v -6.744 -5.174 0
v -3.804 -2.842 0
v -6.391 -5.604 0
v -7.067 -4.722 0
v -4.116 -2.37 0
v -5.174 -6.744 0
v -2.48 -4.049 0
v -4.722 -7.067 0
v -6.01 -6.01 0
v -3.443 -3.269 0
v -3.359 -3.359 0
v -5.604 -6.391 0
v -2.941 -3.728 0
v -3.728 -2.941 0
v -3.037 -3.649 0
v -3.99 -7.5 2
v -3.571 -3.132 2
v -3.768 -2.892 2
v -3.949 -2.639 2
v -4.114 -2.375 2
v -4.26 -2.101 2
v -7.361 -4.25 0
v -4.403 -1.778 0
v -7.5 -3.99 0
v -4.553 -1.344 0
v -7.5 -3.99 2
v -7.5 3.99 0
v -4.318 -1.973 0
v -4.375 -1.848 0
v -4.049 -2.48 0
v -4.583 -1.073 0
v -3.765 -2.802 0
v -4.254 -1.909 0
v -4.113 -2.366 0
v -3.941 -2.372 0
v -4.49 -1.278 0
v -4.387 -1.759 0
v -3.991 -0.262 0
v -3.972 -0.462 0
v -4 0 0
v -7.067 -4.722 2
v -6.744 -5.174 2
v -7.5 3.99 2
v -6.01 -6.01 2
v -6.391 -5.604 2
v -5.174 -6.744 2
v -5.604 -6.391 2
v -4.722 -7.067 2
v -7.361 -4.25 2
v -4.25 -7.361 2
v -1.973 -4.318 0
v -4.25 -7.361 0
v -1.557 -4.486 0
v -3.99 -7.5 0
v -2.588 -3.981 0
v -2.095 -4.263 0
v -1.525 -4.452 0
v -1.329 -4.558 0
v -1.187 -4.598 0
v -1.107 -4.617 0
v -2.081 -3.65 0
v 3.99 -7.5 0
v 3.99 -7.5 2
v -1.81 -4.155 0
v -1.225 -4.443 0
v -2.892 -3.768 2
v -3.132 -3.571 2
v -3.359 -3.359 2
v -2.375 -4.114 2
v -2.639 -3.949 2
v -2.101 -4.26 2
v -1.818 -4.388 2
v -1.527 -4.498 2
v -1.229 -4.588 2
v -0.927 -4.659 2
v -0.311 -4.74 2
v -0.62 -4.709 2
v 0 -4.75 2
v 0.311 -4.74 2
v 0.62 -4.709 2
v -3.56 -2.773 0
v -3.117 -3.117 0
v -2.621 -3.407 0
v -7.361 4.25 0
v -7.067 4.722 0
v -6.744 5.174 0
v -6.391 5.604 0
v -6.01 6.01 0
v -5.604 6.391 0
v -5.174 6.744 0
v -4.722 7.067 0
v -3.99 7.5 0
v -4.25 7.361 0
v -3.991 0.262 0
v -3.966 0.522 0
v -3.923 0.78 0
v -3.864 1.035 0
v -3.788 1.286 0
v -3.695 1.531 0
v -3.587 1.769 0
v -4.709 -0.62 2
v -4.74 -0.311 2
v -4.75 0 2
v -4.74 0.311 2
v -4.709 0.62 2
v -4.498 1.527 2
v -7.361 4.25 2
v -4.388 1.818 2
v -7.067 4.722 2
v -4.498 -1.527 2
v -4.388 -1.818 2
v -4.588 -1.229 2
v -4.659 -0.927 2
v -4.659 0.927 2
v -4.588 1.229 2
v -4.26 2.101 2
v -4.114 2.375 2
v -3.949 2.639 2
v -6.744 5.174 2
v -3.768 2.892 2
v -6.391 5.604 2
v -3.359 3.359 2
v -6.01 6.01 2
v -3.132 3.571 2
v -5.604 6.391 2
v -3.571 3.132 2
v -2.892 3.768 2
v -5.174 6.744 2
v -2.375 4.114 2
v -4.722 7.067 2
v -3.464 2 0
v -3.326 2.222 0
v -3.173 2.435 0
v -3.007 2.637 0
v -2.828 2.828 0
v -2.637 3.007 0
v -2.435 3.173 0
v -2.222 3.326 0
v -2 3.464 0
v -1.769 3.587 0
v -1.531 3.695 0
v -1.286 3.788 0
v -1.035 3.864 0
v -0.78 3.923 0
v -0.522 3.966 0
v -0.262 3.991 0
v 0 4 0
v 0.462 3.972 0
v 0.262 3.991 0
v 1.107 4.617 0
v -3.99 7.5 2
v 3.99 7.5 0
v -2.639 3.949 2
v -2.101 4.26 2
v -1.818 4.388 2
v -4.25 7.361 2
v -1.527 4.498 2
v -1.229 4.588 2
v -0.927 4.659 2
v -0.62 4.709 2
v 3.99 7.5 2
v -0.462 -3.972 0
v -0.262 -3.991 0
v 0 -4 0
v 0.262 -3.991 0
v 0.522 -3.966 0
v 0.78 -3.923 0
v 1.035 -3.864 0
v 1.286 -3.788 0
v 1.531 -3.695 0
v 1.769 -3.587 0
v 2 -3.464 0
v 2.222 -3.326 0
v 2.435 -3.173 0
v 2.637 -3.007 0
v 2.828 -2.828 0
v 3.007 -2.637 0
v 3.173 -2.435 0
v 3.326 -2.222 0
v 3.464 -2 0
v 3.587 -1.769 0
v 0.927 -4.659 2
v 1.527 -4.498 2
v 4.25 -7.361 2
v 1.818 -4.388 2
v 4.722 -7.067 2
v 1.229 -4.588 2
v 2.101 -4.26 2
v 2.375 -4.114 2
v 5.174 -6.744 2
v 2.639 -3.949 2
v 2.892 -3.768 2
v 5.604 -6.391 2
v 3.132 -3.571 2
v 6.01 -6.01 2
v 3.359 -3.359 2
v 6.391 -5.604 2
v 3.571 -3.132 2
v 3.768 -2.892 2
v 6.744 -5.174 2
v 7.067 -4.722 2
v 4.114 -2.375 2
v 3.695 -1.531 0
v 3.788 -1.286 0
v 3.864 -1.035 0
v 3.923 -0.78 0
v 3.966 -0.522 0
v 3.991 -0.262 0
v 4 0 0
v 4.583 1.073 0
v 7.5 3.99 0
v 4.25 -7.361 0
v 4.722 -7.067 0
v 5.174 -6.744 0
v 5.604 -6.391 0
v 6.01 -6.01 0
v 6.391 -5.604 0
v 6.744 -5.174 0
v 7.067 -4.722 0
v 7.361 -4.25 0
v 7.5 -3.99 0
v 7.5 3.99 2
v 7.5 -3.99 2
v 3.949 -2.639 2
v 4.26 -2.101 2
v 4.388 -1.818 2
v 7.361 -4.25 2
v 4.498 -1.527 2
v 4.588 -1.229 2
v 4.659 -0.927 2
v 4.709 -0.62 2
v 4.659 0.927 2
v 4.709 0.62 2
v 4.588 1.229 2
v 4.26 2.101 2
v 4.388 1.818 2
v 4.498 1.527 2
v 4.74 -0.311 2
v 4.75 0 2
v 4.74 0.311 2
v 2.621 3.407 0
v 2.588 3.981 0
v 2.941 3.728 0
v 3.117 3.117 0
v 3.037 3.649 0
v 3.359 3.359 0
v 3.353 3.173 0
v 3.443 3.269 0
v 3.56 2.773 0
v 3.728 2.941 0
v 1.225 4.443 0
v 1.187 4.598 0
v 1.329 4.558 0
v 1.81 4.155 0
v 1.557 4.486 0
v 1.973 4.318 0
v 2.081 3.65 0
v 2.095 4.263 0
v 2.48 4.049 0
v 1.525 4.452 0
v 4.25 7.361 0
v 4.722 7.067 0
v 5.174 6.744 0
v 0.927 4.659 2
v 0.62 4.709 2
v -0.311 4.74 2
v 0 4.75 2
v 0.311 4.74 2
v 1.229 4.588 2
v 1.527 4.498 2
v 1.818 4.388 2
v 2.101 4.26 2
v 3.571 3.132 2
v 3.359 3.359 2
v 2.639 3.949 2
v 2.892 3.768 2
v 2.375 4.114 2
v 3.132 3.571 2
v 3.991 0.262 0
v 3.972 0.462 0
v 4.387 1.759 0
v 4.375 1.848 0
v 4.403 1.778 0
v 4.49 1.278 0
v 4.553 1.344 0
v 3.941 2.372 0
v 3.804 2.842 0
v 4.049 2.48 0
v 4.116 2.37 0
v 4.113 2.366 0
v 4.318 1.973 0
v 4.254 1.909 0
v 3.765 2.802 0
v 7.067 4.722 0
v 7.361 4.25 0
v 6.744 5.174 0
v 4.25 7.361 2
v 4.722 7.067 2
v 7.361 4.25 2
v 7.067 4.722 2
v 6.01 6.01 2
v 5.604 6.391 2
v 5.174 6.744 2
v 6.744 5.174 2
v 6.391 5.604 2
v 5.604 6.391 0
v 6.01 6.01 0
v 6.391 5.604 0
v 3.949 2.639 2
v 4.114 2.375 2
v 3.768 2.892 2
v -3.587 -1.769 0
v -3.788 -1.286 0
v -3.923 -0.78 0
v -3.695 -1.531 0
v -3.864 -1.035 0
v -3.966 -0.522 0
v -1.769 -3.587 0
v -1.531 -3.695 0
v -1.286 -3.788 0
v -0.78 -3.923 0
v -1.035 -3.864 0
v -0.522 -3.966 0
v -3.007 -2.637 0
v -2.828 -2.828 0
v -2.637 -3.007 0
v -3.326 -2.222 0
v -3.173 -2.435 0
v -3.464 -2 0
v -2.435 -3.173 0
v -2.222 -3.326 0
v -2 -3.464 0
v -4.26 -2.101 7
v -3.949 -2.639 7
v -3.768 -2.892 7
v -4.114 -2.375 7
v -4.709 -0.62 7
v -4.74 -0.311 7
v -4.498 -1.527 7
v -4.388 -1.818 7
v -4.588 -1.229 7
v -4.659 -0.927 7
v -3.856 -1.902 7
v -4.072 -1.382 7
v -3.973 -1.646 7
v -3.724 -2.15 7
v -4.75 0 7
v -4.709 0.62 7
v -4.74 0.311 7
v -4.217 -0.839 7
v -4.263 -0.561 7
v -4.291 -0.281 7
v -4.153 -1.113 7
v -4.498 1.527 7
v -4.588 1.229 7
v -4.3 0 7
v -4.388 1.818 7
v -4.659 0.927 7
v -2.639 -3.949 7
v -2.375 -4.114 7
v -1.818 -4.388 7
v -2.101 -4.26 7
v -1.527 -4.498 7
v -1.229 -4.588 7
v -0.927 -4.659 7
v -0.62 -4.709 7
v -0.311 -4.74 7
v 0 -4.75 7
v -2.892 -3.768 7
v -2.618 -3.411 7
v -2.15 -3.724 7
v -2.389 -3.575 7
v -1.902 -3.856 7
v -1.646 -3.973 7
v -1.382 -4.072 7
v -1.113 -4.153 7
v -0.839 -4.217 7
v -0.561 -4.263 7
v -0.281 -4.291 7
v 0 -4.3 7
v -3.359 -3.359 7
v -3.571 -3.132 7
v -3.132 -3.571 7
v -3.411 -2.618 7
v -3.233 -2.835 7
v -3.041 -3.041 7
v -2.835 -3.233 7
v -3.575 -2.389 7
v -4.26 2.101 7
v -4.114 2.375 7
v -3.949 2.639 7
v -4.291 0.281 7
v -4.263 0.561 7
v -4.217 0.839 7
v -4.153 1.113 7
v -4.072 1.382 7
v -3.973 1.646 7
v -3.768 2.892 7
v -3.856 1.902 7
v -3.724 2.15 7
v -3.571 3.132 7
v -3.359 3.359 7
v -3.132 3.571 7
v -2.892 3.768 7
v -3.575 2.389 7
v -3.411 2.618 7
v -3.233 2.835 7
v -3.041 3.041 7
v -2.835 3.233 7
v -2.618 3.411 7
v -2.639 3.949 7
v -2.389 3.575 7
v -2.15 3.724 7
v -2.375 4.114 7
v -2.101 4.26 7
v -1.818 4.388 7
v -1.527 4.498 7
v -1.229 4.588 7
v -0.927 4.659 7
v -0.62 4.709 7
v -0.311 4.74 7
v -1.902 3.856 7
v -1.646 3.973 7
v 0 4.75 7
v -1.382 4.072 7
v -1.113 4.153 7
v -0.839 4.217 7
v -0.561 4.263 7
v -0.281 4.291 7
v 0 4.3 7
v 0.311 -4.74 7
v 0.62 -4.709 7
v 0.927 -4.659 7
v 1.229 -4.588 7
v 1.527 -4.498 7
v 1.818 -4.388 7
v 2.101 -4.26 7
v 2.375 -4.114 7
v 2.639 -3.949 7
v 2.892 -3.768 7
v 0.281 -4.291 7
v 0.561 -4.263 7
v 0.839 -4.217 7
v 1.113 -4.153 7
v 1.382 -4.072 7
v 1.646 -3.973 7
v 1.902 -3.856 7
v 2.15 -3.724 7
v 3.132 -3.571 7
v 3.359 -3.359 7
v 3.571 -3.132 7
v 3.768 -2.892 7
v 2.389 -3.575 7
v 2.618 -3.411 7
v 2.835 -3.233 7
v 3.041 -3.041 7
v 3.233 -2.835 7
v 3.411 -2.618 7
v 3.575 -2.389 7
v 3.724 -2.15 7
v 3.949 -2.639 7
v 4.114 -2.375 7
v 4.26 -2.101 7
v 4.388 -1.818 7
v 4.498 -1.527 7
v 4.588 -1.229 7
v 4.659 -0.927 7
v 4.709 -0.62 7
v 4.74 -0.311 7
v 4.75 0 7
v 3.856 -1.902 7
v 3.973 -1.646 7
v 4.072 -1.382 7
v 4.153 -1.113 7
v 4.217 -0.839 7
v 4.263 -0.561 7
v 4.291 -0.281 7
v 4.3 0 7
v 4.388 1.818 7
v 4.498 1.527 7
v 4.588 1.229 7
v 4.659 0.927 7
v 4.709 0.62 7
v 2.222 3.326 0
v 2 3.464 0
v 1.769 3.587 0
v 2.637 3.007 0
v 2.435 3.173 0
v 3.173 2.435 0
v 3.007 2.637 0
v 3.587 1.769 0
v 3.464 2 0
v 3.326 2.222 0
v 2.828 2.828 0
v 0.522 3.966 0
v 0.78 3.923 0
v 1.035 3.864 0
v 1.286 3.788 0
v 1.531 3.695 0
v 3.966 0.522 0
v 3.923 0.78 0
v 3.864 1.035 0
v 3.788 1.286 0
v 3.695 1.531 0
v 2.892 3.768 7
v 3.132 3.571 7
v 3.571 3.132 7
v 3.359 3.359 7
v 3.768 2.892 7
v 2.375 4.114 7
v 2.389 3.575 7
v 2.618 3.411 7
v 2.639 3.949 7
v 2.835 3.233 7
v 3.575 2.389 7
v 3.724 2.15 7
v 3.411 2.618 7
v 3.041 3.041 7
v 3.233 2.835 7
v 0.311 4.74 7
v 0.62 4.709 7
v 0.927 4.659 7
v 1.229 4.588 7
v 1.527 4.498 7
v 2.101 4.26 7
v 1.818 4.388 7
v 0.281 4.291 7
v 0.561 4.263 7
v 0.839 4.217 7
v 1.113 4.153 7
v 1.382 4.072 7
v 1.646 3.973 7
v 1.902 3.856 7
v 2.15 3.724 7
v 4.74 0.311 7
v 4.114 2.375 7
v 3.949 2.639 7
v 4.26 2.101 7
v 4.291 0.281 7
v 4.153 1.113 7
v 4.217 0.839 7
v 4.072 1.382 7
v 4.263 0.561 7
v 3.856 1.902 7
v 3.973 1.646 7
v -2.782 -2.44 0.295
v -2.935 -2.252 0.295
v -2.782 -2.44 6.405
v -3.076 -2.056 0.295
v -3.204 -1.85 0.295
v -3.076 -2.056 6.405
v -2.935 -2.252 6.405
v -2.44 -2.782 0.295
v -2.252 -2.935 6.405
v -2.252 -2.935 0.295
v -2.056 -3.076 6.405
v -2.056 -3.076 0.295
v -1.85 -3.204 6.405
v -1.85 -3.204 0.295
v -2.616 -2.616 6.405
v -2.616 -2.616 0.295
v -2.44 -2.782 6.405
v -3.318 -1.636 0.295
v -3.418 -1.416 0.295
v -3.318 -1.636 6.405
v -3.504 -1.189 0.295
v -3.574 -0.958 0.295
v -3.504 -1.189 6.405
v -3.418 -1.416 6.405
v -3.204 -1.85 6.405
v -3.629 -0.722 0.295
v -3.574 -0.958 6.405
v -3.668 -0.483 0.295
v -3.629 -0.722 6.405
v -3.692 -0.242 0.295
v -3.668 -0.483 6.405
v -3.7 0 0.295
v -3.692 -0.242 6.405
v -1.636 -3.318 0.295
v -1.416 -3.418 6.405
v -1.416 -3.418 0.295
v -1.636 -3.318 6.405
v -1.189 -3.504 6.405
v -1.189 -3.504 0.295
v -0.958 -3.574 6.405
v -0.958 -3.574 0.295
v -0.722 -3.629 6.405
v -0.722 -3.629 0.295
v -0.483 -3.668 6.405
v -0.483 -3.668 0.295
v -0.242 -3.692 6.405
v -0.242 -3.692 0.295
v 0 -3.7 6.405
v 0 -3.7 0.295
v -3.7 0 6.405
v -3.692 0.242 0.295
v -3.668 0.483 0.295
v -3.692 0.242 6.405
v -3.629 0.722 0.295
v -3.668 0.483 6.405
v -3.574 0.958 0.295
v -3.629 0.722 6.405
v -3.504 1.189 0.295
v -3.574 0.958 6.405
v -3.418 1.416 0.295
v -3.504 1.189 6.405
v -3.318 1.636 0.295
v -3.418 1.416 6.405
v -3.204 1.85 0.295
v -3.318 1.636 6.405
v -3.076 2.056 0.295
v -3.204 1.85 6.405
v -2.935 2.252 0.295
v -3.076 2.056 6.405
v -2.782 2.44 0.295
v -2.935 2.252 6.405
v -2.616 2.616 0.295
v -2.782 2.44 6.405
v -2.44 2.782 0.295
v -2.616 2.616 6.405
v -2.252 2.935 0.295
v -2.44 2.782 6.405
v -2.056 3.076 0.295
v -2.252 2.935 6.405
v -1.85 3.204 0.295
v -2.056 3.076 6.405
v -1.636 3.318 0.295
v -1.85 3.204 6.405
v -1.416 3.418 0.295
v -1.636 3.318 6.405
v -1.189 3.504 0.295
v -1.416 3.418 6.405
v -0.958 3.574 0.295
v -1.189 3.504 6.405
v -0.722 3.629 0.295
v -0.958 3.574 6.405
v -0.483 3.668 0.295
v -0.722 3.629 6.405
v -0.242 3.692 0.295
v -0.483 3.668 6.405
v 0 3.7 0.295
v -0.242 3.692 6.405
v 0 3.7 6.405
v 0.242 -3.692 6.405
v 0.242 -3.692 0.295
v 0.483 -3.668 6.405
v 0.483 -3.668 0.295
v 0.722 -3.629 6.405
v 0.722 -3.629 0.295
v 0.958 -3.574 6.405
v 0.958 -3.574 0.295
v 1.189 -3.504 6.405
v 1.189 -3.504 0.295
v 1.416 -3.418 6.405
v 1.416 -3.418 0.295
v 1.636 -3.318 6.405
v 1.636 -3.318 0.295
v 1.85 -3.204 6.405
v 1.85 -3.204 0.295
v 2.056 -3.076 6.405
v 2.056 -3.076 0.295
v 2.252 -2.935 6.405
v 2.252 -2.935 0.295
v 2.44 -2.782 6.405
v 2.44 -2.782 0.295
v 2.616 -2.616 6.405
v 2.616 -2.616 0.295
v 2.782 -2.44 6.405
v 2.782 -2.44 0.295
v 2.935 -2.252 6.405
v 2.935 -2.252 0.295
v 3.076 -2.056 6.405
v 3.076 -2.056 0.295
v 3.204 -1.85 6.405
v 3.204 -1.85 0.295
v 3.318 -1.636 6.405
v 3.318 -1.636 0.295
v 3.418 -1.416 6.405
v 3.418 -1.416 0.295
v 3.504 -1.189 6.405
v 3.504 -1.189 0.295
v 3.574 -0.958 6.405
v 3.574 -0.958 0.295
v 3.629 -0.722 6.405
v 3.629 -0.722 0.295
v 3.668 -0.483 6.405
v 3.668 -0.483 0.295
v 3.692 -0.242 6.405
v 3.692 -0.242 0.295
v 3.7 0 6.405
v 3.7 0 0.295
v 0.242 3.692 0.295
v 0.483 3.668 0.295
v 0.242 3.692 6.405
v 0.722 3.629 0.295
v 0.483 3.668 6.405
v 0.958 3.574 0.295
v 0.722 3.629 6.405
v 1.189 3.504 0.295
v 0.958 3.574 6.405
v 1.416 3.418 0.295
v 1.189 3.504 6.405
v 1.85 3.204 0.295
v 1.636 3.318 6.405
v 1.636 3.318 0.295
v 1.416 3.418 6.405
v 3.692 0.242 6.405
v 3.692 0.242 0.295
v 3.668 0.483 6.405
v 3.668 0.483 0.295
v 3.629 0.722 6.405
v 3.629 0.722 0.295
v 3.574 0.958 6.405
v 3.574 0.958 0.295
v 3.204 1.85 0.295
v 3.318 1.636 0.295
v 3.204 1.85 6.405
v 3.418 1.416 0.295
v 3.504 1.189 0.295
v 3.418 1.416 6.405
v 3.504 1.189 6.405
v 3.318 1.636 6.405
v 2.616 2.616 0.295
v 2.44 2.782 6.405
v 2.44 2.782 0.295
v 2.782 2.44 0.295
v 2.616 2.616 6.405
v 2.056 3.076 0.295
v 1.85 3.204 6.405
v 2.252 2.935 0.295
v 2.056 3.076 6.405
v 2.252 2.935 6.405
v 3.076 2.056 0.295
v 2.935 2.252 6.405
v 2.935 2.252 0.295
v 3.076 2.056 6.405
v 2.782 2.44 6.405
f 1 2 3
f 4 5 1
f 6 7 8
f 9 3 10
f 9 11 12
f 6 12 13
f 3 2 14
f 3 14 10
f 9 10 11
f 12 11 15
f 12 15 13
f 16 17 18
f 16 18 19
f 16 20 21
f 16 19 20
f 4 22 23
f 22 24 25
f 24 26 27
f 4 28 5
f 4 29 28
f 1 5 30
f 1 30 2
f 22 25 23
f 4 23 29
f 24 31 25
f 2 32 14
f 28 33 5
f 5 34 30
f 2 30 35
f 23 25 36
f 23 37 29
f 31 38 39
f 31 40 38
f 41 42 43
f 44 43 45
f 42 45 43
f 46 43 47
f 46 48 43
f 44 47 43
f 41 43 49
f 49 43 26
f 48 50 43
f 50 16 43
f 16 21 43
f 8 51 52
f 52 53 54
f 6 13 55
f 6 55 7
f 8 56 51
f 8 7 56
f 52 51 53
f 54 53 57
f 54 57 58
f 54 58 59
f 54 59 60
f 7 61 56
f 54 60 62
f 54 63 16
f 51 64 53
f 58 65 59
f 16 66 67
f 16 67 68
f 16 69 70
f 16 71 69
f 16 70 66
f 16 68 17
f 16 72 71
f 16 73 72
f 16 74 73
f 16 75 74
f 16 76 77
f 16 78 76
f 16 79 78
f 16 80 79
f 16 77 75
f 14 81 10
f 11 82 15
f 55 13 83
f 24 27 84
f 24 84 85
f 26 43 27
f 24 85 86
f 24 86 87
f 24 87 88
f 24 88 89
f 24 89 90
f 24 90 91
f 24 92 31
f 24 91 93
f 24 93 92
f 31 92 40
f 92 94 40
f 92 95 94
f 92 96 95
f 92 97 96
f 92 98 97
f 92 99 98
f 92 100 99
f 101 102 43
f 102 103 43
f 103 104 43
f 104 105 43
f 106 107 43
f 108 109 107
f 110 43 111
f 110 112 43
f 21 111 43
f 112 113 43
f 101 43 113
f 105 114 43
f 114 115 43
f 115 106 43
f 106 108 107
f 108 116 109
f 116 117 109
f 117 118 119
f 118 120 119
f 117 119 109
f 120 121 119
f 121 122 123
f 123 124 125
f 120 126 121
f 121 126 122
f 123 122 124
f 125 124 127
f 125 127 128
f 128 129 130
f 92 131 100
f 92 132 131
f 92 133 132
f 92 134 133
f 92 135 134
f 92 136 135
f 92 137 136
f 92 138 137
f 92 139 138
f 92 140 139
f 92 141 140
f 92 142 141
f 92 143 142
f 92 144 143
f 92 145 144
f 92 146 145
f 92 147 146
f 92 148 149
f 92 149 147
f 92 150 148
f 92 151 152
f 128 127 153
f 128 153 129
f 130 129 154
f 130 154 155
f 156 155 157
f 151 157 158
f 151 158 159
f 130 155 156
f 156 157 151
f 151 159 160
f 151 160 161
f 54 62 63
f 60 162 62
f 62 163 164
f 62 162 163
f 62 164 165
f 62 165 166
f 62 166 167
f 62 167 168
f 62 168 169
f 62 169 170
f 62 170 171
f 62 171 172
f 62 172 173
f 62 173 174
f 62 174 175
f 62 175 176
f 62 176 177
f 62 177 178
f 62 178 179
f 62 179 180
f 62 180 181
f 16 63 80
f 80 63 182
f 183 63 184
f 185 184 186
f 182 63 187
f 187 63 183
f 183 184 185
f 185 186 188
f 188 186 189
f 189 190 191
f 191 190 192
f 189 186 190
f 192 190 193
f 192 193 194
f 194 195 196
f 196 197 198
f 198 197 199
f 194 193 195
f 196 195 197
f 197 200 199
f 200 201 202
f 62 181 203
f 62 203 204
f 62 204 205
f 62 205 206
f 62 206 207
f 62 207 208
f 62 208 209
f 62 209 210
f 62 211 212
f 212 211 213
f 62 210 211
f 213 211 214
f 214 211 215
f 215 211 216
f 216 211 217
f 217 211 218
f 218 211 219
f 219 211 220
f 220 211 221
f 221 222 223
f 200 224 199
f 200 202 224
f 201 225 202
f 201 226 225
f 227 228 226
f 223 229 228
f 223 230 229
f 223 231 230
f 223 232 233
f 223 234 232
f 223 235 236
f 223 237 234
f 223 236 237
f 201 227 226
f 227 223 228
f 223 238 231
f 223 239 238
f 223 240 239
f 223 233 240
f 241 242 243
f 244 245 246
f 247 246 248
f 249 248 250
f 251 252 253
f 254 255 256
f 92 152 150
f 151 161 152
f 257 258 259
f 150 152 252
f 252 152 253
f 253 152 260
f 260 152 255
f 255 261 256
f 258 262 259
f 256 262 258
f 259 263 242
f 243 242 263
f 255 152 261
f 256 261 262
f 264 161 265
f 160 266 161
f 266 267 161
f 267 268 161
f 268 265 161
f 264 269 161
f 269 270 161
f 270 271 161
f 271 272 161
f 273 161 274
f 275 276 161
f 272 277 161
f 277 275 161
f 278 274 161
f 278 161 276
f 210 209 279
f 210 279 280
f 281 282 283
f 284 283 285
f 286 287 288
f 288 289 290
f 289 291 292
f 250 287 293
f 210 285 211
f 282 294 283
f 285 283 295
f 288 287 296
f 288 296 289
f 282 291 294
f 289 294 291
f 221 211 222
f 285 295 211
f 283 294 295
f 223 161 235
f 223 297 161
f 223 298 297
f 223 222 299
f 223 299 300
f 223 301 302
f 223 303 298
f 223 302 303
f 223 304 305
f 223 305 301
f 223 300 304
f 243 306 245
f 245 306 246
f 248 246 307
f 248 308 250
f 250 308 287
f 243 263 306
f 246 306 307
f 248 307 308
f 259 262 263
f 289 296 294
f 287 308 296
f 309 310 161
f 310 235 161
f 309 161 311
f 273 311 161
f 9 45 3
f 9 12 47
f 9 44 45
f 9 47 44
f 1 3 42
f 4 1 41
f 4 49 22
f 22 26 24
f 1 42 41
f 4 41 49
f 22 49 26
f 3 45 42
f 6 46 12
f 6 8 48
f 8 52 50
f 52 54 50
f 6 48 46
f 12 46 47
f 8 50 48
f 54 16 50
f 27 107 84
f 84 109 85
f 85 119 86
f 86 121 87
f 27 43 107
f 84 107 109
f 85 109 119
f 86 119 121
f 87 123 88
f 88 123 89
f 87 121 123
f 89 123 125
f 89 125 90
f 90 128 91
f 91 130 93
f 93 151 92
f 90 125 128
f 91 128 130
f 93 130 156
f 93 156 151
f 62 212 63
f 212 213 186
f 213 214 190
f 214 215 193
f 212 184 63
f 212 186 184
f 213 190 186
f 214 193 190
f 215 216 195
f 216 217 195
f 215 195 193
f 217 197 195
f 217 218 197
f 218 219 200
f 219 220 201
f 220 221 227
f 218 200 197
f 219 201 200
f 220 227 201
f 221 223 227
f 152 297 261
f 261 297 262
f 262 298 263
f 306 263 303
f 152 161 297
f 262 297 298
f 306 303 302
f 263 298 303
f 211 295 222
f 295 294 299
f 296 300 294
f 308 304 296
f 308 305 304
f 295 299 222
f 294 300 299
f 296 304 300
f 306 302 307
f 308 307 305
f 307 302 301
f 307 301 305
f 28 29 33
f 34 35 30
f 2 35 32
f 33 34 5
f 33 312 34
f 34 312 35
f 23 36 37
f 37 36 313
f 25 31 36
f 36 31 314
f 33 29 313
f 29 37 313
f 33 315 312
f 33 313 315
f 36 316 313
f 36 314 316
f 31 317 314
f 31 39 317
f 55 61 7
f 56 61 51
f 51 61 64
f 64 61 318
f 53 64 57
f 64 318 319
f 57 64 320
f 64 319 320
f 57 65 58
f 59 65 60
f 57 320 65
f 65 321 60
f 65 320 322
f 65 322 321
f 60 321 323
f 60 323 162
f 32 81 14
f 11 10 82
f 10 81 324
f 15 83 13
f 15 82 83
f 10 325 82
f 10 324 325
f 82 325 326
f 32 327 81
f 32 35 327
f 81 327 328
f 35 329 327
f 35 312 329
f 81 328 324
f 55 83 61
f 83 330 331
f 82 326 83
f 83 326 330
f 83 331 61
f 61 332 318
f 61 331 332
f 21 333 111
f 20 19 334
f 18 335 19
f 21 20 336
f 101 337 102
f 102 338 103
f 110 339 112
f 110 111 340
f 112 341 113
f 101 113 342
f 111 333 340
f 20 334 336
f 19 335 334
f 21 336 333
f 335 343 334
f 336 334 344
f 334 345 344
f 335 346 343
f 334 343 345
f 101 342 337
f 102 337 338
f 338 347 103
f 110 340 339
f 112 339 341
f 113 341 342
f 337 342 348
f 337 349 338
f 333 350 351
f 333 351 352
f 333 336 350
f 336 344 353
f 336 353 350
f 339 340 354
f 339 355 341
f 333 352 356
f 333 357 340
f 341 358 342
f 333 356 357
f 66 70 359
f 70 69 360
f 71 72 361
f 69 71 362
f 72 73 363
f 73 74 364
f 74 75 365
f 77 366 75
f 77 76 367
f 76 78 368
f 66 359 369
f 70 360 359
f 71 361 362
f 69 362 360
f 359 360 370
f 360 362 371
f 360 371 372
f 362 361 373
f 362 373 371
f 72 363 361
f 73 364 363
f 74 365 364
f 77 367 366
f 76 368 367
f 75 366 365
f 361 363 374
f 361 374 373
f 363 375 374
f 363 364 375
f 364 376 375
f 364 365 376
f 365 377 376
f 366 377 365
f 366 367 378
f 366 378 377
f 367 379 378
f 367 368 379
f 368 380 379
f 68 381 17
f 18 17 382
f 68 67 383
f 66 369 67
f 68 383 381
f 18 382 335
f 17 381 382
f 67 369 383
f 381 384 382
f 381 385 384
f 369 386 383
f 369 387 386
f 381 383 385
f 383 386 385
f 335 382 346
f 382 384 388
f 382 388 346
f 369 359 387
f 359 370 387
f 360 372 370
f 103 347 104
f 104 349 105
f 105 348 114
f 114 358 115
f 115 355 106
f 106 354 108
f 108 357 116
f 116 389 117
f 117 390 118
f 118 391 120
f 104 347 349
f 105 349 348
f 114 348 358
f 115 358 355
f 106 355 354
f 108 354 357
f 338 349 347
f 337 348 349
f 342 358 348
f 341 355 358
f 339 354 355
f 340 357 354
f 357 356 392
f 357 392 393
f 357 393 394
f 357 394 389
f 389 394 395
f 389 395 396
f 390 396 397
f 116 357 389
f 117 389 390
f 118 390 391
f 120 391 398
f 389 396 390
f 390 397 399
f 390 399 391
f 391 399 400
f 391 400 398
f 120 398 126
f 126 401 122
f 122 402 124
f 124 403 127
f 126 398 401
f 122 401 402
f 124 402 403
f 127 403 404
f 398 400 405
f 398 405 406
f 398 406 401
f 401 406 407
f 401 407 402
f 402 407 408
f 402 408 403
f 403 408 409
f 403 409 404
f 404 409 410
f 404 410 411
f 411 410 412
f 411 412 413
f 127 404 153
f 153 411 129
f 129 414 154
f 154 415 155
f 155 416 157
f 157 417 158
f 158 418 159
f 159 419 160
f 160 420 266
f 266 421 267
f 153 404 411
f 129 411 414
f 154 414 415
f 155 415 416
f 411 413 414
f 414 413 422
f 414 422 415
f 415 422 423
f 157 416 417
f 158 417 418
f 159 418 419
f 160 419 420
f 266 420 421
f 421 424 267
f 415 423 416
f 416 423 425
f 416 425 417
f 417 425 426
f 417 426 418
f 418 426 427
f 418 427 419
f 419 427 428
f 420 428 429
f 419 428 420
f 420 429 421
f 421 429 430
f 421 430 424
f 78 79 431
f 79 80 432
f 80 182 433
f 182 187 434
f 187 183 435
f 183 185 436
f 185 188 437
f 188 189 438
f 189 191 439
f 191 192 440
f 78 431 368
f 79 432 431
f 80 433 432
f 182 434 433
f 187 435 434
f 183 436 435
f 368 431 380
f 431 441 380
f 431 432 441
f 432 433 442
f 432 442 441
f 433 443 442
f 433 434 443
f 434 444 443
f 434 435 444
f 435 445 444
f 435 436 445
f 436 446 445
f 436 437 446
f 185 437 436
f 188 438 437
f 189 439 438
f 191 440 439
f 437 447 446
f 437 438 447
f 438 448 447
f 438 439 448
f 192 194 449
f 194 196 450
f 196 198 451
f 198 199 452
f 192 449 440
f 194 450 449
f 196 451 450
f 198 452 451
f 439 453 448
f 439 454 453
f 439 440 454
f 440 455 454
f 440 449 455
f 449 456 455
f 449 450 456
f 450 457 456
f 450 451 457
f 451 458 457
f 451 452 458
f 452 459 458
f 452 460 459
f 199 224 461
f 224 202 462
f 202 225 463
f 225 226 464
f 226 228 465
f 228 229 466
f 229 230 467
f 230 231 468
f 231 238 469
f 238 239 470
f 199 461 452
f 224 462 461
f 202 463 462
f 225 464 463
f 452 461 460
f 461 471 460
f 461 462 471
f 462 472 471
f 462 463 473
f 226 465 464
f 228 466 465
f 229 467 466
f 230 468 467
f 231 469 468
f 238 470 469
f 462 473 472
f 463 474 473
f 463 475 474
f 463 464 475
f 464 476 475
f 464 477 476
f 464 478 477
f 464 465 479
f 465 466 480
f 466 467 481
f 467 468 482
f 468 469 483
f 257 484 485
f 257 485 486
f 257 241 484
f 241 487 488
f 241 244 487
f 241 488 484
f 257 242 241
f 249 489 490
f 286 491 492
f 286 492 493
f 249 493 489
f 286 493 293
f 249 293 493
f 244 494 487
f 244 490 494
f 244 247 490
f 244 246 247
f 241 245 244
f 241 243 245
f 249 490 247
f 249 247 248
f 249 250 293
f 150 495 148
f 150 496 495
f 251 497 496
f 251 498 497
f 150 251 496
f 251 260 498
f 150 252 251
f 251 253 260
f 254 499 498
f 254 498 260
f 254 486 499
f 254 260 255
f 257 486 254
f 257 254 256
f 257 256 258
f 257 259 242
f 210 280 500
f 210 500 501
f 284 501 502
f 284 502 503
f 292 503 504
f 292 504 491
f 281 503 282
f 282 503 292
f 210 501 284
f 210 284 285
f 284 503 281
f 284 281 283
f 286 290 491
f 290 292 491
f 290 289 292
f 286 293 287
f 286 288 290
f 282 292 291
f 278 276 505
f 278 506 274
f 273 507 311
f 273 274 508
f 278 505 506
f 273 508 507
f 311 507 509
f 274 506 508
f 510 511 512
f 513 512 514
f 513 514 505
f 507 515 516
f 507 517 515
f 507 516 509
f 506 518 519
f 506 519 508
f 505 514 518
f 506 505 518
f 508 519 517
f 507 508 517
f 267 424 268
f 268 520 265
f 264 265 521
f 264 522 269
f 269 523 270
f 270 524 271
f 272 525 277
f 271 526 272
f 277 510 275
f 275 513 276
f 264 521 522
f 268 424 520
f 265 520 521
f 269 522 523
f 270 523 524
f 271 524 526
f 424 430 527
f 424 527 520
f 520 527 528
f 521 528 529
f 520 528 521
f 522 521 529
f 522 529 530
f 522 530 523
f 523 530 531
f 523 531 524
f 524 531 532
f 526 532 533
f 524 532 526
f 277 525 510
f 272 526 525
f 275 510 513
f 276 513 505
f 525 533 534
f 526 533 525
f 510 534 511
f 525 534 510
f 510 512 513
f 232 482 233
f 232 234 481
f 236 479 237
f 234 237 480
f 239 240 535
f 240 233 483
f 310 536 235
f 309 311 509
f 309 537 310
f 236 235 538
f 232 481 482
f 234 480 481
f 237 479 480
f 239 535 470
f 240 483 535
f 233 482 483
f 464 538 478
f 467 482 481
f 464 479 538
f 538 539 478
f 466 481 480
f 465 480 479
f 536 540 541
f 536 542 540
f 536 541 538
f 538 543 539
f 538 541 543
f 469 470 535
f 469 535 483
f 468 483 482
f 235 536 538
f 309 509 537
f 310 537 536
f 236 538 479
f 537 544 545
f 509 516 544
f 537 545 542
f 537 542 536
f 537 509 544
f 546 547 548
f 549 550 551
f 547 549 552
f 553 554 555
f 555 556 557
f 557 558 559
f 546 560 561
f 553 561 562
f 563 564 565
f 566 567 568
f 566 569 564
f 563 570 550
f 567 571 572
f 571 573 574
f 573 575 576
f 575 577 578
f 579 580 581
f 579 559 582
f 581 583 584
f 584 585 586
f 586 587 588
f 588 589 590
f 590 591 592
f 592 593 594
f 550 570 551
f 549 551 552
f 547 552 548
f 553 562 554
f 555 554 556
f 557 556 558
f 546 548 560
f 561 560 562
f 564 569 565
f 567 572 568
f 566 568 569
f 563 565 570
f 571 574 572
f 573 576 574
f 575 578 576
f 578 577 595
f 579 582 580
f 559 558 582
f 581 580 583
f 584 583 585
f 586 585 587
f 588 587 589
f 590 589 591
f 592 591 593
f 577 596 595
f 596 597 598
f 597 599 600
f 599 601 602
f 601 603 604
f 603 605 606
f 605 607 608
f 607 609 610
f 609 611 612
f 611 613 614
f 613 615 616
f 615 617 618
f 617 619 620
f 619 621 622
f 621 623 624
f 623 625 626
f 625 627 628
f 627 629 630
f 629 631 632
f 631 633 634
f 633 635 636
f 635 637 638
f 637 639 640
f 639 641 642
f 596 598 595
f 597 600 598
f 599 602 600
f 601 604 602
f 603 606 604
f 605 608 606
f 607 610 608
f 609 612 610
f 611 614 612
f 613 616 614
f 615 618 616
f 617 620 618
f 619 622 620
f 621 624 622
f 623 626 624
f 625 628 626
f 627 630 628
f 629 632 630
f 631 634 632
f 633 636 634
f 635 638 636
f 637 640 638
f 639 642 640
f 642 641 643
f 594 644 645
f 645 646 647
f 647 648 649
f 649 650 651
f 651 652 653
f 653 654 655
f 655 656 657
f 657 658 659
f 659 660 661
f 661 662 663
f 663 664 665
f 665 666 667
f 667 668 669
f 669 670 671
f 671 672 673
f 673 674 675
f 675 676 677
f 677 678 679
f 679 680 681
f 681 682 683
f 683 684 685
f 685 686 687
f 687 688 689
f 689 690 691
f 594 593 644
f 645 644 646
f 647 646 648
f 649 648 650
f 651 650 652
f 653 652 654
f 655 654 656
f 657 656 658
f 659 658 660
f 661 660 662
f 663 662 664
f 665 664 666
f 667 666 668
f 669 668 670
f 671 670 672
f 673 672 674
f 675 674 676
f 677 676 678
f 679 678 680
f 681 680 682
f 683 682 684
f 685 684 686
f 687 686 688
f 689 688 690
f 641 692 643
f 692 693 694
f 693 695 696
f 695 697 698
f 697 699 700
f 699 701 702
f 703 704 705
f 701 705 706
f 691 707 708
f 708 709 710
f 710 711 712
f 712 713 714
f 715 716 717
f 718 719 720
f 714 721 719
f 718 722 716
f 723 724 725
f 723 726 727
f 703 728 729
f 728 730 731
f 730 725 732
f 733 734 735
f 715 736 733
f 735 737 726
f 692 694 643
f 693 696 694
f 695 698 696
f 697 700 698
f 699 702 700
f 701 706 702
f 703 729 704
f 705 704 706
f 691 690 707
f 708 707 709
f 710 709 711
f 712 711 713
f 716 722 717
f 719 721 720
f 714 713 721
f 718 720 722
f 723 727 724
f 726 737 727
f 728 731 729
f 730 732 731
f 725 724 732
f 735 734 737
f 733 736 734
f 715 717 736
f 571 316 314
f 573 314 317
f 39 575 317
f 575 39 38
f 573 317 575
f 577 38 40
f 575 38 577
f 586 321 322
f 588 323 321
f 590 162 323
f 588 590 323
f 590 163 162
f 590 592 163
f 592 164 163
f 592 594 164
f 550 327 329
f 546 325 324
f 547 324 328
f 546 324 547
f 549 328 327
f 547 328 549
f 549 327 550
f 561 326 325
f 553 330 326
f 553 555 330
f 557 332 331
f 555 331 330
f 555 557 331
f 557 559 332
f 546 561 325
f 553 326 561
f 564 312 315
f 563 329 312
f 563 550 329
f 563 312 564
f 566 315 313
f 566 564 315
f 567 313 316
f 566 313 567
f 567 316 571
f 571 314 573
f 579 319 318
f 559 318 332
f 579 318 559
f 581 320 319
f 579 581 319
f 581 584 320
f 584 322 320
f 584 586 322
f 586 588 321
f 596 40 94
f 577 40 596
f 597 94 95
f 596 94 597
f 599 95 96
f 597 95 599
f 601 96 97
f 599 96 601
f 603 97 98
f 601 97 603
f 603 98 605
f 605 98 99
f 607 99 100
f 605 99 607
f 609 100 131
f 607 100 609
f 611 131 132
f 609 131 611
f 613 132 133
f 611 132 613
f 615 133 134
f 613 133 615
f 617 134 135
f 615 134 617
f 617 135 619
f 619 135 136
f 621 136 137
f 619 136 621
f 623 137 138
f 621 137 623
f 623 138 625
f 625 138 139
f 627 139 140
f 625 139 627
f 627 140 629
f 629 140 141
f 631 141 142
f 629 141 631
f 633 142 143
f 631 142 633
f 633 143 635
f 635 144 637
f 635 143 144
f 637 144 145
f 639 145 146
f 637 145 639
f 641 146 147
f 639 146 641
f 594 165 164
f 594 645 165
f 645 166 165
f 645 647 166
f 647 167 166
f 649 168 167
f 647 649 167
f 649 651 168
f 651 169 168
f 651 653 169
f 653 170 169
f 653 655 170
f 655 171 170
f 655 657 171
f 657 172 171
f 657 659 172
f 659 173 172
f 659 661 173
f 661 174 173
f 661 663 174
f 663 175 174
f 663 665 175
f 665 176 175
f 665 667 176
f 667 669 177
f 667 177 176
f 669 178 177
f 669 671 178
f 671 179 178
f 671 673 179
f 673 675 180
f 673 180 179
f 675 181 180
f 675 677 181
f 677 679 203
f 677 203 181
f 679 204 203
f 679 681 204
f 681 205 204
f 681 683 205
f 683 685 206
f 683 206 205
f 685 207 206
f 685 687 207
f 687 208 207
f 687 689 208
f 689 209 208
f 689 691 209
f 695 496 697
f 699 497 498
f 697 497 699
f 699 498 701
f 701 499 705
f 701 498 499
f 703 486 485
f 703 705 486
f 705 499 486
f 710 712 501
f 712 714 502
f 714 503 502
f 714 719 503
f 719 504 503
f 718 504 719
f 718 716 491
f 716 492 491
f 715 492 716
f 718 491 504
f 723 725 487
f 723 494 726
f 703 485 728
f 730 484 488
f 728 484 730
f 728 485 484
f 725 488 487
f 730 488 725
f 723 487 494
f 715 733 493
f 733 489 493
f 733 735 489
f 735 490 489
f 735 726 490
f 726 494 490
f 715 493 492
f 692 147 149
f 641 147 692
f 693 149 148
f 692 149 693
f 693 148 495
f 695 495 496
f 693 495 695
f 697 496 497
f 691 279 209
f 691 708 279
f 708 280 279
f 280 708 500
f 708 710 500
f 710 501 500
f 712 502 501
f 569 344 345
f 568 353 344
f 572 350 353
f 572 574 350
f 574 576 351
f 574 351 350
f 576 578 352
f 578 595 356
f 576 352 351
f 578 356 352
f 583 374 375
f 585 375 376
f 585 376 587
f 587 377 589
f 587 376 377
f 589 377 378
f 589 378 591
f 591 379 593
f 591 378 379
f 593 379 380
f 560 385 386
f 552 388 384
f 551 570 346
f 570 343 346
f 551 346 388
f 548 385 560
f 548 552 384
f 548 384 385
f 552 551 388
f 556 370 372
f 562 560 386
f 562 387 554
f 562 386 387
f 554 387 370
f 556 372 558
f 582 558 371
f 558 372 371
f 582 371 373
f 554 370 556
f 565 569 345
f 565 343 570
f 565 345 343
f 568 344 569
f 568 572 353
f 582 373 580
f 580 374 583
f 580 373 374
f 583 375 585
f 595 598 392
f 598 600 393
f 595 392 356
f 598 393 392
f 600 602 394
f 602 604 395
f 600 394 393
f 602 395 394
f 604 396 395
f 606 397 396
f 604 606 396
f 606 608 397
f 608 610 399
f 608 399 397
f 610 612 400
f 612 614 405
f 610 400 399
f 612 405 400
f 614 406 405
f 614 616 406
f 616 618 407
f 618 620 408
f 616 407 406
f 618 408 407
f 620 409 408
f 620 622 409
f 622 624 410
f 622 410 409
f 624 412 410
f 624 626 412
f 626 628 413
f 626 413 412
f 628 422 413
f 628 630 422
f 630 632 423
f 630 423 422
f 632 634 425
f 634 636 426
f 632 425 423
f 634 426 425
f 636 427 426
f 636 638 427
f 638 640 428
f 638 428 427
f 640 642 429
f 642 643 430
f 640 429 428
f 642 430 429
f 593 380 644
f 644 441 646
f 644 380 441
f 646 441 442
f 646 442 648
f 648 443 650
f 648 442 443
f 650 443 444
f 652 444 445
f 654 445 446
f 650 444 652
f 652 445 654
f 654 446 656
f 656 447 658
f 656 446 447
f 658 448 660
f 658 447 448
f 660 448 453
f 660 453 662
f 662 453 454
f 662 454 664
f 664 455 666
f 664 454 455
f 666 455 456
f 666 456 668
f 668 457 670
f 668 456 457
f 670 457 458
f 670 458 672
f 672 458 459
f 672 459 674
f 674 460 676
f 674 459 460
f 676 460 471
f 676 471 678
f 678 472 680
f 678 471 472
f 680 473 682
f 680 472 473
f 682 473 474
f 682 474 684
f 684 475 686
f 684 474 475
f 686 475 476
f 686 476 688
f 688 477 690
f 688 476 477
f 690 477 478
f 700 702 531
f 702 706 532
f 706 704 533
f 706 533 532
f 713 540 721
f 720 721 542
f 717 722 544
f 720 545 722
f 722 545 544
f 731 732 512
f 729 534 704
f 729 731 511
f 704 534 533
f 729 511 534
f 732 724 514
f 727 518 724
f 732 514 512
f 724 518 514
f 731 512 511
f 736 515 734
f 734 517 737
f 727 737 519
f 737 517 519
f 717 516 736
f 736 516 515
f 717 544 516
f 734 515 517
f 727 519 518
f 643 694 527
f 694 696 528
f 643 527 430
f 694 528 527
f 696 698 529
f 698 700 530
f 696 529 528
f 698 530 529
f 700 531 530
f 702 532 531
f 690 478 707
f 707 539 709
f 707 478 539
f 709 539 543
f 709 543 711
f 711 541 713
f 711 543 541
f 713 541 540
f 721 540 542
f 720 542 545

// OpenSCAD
// A250K Pot Adapter
// -------------------------------------------------------------
// An adapter that holds an A250K potentiometer in a 9.7 mm hole in a
// guitar body, modelled on "Ibanez short pot adapter.stl". A boss sits
// in the body's hole, the pot's bushing (M8 x 0.75, measured 7.77 mm)
// screws into it from below, and a square flange bears on the top of
// the body.
//
// The same shape as the original: a 15 mm square flange 2 mm thick, its
// corners rounded to 17 mm across, and a 5 mm boss. The boss is wider,
// to fit the 9.7 mm hole (the original's is 9 mm).
//
// No printed thread: the bore is plain, a little over the bushing's
// root, and the pot's metal thread forms its own in the PETG as it's
// screwed in. A 0.75 mm pitch is too fine to print well at 0.28 mm
// layers anyway, and the plain bore leaves a thicker wall. A 45 degree
// lead-in at the boss's end starts the bushing straight.
//
// Printing: flat, flange on the bed and the boss up, as the original
// prints. The bore is vertical; the chamfers are 45 degrees.
//
// Model coordinates: print orientation, the flange's top face (on the
// body in use) on the bed at z = 0. All dimensions in mm.

/* [Output] */
// Which part(s) to render
part = "all"; // [all, adapter, mounted]

/* [Body hole] */
// Diameter of the hole in the guitar body
hole_d = 9.7;
// Gap between the boss and the hole, each side
hole_clearance = 0.1;

/* [Pot bushing] */
// Bushing thread's outside diameter (measured)
bushing_d = 7.77;
// Bore the bushing cuts its thread into; raise it if the pot is too hard to screw in, lower it if it's loose
bore_d = 7.4;
// Lead-in chamfer at the end the pot goes in
lead_in = 0.6;
// Chamfer at the flange end of the bore
top_chamfer = 0.3;

/* [Adapter] */
// Length of the boss below the flange
boss_l = 5;
// Flange size (square)
flange_w = 15;
// Flange thickness
flange_t = 2;
// Diameter the flange's corners are rounded to
flange_corner_d = 17;

/* [Hidden] */
$fn = 96;
eps = 0.01;

boss_d = hole_d - 2 * hole_clearance;
total_l = flange_t + boss_l;

assert(bore_d < bushing_d - 0.2, "the bore must be well under the bushing for its thread to bite");
assert(boss_d - bushing_d >= 1, "the boss wall outside the bushing's thread must be at least 0.5 mm");

echo(str("boss ", boss_d, " mm across; wall ", (boss_d - bore_d) / 2,
         " mm at the bore, ", (boss_d - bushing_d) / 2, " mm outside the cut thread"));

module adapter() {
    difference() {
        union() {
            intersection() {
                translate([-flange_w / 2, -flange_w / 2, 0])
                    cube([flange_w, flange_w, flange_t]);
                cylinder(d = flange_corner_d, h = flange_t);
            }
            cylinder(d = boss_d, h = total_l);
        }
        translate([0, 0, -1]) cylinder(d = bore_d, h = total_l + 2);
        // Chamfer at the flange end (on the bed in print)
        translate([0, 0, -eps])
            cylinder(d1 = bore_d + 2 * top_chamfer + 2 * eps, d2 = bore_d - eps,
                     h = top_chamfer + eps);
        // Lead-in at the boss's end, where the pot goes in
        translate([0, 0, total_l - lead_in])
            cylinder(d1 = bore_d - eps, d2 = bore_d + 2 * lead_in + 2 * eps,
                     h = lead_in + eps);
    }
}

if (part == "mounted") {
    // Flange on the body's top, boss down into the hole
    translate([0, 0, flange_t]) mirror([0, 0, 1]) adapter();
    color("burlywood", 0.3) %difference() {
        translate([-15, -15, -boss_l - 3]) cube([30, 30, boss_l + 3]);
        translate([0, 0, -boss_l - 4]) cylinder(d = hole_d, h = boss_l + 5);
    }
} else if (part == "all" || part == "adapter") {
    adapter();
}
